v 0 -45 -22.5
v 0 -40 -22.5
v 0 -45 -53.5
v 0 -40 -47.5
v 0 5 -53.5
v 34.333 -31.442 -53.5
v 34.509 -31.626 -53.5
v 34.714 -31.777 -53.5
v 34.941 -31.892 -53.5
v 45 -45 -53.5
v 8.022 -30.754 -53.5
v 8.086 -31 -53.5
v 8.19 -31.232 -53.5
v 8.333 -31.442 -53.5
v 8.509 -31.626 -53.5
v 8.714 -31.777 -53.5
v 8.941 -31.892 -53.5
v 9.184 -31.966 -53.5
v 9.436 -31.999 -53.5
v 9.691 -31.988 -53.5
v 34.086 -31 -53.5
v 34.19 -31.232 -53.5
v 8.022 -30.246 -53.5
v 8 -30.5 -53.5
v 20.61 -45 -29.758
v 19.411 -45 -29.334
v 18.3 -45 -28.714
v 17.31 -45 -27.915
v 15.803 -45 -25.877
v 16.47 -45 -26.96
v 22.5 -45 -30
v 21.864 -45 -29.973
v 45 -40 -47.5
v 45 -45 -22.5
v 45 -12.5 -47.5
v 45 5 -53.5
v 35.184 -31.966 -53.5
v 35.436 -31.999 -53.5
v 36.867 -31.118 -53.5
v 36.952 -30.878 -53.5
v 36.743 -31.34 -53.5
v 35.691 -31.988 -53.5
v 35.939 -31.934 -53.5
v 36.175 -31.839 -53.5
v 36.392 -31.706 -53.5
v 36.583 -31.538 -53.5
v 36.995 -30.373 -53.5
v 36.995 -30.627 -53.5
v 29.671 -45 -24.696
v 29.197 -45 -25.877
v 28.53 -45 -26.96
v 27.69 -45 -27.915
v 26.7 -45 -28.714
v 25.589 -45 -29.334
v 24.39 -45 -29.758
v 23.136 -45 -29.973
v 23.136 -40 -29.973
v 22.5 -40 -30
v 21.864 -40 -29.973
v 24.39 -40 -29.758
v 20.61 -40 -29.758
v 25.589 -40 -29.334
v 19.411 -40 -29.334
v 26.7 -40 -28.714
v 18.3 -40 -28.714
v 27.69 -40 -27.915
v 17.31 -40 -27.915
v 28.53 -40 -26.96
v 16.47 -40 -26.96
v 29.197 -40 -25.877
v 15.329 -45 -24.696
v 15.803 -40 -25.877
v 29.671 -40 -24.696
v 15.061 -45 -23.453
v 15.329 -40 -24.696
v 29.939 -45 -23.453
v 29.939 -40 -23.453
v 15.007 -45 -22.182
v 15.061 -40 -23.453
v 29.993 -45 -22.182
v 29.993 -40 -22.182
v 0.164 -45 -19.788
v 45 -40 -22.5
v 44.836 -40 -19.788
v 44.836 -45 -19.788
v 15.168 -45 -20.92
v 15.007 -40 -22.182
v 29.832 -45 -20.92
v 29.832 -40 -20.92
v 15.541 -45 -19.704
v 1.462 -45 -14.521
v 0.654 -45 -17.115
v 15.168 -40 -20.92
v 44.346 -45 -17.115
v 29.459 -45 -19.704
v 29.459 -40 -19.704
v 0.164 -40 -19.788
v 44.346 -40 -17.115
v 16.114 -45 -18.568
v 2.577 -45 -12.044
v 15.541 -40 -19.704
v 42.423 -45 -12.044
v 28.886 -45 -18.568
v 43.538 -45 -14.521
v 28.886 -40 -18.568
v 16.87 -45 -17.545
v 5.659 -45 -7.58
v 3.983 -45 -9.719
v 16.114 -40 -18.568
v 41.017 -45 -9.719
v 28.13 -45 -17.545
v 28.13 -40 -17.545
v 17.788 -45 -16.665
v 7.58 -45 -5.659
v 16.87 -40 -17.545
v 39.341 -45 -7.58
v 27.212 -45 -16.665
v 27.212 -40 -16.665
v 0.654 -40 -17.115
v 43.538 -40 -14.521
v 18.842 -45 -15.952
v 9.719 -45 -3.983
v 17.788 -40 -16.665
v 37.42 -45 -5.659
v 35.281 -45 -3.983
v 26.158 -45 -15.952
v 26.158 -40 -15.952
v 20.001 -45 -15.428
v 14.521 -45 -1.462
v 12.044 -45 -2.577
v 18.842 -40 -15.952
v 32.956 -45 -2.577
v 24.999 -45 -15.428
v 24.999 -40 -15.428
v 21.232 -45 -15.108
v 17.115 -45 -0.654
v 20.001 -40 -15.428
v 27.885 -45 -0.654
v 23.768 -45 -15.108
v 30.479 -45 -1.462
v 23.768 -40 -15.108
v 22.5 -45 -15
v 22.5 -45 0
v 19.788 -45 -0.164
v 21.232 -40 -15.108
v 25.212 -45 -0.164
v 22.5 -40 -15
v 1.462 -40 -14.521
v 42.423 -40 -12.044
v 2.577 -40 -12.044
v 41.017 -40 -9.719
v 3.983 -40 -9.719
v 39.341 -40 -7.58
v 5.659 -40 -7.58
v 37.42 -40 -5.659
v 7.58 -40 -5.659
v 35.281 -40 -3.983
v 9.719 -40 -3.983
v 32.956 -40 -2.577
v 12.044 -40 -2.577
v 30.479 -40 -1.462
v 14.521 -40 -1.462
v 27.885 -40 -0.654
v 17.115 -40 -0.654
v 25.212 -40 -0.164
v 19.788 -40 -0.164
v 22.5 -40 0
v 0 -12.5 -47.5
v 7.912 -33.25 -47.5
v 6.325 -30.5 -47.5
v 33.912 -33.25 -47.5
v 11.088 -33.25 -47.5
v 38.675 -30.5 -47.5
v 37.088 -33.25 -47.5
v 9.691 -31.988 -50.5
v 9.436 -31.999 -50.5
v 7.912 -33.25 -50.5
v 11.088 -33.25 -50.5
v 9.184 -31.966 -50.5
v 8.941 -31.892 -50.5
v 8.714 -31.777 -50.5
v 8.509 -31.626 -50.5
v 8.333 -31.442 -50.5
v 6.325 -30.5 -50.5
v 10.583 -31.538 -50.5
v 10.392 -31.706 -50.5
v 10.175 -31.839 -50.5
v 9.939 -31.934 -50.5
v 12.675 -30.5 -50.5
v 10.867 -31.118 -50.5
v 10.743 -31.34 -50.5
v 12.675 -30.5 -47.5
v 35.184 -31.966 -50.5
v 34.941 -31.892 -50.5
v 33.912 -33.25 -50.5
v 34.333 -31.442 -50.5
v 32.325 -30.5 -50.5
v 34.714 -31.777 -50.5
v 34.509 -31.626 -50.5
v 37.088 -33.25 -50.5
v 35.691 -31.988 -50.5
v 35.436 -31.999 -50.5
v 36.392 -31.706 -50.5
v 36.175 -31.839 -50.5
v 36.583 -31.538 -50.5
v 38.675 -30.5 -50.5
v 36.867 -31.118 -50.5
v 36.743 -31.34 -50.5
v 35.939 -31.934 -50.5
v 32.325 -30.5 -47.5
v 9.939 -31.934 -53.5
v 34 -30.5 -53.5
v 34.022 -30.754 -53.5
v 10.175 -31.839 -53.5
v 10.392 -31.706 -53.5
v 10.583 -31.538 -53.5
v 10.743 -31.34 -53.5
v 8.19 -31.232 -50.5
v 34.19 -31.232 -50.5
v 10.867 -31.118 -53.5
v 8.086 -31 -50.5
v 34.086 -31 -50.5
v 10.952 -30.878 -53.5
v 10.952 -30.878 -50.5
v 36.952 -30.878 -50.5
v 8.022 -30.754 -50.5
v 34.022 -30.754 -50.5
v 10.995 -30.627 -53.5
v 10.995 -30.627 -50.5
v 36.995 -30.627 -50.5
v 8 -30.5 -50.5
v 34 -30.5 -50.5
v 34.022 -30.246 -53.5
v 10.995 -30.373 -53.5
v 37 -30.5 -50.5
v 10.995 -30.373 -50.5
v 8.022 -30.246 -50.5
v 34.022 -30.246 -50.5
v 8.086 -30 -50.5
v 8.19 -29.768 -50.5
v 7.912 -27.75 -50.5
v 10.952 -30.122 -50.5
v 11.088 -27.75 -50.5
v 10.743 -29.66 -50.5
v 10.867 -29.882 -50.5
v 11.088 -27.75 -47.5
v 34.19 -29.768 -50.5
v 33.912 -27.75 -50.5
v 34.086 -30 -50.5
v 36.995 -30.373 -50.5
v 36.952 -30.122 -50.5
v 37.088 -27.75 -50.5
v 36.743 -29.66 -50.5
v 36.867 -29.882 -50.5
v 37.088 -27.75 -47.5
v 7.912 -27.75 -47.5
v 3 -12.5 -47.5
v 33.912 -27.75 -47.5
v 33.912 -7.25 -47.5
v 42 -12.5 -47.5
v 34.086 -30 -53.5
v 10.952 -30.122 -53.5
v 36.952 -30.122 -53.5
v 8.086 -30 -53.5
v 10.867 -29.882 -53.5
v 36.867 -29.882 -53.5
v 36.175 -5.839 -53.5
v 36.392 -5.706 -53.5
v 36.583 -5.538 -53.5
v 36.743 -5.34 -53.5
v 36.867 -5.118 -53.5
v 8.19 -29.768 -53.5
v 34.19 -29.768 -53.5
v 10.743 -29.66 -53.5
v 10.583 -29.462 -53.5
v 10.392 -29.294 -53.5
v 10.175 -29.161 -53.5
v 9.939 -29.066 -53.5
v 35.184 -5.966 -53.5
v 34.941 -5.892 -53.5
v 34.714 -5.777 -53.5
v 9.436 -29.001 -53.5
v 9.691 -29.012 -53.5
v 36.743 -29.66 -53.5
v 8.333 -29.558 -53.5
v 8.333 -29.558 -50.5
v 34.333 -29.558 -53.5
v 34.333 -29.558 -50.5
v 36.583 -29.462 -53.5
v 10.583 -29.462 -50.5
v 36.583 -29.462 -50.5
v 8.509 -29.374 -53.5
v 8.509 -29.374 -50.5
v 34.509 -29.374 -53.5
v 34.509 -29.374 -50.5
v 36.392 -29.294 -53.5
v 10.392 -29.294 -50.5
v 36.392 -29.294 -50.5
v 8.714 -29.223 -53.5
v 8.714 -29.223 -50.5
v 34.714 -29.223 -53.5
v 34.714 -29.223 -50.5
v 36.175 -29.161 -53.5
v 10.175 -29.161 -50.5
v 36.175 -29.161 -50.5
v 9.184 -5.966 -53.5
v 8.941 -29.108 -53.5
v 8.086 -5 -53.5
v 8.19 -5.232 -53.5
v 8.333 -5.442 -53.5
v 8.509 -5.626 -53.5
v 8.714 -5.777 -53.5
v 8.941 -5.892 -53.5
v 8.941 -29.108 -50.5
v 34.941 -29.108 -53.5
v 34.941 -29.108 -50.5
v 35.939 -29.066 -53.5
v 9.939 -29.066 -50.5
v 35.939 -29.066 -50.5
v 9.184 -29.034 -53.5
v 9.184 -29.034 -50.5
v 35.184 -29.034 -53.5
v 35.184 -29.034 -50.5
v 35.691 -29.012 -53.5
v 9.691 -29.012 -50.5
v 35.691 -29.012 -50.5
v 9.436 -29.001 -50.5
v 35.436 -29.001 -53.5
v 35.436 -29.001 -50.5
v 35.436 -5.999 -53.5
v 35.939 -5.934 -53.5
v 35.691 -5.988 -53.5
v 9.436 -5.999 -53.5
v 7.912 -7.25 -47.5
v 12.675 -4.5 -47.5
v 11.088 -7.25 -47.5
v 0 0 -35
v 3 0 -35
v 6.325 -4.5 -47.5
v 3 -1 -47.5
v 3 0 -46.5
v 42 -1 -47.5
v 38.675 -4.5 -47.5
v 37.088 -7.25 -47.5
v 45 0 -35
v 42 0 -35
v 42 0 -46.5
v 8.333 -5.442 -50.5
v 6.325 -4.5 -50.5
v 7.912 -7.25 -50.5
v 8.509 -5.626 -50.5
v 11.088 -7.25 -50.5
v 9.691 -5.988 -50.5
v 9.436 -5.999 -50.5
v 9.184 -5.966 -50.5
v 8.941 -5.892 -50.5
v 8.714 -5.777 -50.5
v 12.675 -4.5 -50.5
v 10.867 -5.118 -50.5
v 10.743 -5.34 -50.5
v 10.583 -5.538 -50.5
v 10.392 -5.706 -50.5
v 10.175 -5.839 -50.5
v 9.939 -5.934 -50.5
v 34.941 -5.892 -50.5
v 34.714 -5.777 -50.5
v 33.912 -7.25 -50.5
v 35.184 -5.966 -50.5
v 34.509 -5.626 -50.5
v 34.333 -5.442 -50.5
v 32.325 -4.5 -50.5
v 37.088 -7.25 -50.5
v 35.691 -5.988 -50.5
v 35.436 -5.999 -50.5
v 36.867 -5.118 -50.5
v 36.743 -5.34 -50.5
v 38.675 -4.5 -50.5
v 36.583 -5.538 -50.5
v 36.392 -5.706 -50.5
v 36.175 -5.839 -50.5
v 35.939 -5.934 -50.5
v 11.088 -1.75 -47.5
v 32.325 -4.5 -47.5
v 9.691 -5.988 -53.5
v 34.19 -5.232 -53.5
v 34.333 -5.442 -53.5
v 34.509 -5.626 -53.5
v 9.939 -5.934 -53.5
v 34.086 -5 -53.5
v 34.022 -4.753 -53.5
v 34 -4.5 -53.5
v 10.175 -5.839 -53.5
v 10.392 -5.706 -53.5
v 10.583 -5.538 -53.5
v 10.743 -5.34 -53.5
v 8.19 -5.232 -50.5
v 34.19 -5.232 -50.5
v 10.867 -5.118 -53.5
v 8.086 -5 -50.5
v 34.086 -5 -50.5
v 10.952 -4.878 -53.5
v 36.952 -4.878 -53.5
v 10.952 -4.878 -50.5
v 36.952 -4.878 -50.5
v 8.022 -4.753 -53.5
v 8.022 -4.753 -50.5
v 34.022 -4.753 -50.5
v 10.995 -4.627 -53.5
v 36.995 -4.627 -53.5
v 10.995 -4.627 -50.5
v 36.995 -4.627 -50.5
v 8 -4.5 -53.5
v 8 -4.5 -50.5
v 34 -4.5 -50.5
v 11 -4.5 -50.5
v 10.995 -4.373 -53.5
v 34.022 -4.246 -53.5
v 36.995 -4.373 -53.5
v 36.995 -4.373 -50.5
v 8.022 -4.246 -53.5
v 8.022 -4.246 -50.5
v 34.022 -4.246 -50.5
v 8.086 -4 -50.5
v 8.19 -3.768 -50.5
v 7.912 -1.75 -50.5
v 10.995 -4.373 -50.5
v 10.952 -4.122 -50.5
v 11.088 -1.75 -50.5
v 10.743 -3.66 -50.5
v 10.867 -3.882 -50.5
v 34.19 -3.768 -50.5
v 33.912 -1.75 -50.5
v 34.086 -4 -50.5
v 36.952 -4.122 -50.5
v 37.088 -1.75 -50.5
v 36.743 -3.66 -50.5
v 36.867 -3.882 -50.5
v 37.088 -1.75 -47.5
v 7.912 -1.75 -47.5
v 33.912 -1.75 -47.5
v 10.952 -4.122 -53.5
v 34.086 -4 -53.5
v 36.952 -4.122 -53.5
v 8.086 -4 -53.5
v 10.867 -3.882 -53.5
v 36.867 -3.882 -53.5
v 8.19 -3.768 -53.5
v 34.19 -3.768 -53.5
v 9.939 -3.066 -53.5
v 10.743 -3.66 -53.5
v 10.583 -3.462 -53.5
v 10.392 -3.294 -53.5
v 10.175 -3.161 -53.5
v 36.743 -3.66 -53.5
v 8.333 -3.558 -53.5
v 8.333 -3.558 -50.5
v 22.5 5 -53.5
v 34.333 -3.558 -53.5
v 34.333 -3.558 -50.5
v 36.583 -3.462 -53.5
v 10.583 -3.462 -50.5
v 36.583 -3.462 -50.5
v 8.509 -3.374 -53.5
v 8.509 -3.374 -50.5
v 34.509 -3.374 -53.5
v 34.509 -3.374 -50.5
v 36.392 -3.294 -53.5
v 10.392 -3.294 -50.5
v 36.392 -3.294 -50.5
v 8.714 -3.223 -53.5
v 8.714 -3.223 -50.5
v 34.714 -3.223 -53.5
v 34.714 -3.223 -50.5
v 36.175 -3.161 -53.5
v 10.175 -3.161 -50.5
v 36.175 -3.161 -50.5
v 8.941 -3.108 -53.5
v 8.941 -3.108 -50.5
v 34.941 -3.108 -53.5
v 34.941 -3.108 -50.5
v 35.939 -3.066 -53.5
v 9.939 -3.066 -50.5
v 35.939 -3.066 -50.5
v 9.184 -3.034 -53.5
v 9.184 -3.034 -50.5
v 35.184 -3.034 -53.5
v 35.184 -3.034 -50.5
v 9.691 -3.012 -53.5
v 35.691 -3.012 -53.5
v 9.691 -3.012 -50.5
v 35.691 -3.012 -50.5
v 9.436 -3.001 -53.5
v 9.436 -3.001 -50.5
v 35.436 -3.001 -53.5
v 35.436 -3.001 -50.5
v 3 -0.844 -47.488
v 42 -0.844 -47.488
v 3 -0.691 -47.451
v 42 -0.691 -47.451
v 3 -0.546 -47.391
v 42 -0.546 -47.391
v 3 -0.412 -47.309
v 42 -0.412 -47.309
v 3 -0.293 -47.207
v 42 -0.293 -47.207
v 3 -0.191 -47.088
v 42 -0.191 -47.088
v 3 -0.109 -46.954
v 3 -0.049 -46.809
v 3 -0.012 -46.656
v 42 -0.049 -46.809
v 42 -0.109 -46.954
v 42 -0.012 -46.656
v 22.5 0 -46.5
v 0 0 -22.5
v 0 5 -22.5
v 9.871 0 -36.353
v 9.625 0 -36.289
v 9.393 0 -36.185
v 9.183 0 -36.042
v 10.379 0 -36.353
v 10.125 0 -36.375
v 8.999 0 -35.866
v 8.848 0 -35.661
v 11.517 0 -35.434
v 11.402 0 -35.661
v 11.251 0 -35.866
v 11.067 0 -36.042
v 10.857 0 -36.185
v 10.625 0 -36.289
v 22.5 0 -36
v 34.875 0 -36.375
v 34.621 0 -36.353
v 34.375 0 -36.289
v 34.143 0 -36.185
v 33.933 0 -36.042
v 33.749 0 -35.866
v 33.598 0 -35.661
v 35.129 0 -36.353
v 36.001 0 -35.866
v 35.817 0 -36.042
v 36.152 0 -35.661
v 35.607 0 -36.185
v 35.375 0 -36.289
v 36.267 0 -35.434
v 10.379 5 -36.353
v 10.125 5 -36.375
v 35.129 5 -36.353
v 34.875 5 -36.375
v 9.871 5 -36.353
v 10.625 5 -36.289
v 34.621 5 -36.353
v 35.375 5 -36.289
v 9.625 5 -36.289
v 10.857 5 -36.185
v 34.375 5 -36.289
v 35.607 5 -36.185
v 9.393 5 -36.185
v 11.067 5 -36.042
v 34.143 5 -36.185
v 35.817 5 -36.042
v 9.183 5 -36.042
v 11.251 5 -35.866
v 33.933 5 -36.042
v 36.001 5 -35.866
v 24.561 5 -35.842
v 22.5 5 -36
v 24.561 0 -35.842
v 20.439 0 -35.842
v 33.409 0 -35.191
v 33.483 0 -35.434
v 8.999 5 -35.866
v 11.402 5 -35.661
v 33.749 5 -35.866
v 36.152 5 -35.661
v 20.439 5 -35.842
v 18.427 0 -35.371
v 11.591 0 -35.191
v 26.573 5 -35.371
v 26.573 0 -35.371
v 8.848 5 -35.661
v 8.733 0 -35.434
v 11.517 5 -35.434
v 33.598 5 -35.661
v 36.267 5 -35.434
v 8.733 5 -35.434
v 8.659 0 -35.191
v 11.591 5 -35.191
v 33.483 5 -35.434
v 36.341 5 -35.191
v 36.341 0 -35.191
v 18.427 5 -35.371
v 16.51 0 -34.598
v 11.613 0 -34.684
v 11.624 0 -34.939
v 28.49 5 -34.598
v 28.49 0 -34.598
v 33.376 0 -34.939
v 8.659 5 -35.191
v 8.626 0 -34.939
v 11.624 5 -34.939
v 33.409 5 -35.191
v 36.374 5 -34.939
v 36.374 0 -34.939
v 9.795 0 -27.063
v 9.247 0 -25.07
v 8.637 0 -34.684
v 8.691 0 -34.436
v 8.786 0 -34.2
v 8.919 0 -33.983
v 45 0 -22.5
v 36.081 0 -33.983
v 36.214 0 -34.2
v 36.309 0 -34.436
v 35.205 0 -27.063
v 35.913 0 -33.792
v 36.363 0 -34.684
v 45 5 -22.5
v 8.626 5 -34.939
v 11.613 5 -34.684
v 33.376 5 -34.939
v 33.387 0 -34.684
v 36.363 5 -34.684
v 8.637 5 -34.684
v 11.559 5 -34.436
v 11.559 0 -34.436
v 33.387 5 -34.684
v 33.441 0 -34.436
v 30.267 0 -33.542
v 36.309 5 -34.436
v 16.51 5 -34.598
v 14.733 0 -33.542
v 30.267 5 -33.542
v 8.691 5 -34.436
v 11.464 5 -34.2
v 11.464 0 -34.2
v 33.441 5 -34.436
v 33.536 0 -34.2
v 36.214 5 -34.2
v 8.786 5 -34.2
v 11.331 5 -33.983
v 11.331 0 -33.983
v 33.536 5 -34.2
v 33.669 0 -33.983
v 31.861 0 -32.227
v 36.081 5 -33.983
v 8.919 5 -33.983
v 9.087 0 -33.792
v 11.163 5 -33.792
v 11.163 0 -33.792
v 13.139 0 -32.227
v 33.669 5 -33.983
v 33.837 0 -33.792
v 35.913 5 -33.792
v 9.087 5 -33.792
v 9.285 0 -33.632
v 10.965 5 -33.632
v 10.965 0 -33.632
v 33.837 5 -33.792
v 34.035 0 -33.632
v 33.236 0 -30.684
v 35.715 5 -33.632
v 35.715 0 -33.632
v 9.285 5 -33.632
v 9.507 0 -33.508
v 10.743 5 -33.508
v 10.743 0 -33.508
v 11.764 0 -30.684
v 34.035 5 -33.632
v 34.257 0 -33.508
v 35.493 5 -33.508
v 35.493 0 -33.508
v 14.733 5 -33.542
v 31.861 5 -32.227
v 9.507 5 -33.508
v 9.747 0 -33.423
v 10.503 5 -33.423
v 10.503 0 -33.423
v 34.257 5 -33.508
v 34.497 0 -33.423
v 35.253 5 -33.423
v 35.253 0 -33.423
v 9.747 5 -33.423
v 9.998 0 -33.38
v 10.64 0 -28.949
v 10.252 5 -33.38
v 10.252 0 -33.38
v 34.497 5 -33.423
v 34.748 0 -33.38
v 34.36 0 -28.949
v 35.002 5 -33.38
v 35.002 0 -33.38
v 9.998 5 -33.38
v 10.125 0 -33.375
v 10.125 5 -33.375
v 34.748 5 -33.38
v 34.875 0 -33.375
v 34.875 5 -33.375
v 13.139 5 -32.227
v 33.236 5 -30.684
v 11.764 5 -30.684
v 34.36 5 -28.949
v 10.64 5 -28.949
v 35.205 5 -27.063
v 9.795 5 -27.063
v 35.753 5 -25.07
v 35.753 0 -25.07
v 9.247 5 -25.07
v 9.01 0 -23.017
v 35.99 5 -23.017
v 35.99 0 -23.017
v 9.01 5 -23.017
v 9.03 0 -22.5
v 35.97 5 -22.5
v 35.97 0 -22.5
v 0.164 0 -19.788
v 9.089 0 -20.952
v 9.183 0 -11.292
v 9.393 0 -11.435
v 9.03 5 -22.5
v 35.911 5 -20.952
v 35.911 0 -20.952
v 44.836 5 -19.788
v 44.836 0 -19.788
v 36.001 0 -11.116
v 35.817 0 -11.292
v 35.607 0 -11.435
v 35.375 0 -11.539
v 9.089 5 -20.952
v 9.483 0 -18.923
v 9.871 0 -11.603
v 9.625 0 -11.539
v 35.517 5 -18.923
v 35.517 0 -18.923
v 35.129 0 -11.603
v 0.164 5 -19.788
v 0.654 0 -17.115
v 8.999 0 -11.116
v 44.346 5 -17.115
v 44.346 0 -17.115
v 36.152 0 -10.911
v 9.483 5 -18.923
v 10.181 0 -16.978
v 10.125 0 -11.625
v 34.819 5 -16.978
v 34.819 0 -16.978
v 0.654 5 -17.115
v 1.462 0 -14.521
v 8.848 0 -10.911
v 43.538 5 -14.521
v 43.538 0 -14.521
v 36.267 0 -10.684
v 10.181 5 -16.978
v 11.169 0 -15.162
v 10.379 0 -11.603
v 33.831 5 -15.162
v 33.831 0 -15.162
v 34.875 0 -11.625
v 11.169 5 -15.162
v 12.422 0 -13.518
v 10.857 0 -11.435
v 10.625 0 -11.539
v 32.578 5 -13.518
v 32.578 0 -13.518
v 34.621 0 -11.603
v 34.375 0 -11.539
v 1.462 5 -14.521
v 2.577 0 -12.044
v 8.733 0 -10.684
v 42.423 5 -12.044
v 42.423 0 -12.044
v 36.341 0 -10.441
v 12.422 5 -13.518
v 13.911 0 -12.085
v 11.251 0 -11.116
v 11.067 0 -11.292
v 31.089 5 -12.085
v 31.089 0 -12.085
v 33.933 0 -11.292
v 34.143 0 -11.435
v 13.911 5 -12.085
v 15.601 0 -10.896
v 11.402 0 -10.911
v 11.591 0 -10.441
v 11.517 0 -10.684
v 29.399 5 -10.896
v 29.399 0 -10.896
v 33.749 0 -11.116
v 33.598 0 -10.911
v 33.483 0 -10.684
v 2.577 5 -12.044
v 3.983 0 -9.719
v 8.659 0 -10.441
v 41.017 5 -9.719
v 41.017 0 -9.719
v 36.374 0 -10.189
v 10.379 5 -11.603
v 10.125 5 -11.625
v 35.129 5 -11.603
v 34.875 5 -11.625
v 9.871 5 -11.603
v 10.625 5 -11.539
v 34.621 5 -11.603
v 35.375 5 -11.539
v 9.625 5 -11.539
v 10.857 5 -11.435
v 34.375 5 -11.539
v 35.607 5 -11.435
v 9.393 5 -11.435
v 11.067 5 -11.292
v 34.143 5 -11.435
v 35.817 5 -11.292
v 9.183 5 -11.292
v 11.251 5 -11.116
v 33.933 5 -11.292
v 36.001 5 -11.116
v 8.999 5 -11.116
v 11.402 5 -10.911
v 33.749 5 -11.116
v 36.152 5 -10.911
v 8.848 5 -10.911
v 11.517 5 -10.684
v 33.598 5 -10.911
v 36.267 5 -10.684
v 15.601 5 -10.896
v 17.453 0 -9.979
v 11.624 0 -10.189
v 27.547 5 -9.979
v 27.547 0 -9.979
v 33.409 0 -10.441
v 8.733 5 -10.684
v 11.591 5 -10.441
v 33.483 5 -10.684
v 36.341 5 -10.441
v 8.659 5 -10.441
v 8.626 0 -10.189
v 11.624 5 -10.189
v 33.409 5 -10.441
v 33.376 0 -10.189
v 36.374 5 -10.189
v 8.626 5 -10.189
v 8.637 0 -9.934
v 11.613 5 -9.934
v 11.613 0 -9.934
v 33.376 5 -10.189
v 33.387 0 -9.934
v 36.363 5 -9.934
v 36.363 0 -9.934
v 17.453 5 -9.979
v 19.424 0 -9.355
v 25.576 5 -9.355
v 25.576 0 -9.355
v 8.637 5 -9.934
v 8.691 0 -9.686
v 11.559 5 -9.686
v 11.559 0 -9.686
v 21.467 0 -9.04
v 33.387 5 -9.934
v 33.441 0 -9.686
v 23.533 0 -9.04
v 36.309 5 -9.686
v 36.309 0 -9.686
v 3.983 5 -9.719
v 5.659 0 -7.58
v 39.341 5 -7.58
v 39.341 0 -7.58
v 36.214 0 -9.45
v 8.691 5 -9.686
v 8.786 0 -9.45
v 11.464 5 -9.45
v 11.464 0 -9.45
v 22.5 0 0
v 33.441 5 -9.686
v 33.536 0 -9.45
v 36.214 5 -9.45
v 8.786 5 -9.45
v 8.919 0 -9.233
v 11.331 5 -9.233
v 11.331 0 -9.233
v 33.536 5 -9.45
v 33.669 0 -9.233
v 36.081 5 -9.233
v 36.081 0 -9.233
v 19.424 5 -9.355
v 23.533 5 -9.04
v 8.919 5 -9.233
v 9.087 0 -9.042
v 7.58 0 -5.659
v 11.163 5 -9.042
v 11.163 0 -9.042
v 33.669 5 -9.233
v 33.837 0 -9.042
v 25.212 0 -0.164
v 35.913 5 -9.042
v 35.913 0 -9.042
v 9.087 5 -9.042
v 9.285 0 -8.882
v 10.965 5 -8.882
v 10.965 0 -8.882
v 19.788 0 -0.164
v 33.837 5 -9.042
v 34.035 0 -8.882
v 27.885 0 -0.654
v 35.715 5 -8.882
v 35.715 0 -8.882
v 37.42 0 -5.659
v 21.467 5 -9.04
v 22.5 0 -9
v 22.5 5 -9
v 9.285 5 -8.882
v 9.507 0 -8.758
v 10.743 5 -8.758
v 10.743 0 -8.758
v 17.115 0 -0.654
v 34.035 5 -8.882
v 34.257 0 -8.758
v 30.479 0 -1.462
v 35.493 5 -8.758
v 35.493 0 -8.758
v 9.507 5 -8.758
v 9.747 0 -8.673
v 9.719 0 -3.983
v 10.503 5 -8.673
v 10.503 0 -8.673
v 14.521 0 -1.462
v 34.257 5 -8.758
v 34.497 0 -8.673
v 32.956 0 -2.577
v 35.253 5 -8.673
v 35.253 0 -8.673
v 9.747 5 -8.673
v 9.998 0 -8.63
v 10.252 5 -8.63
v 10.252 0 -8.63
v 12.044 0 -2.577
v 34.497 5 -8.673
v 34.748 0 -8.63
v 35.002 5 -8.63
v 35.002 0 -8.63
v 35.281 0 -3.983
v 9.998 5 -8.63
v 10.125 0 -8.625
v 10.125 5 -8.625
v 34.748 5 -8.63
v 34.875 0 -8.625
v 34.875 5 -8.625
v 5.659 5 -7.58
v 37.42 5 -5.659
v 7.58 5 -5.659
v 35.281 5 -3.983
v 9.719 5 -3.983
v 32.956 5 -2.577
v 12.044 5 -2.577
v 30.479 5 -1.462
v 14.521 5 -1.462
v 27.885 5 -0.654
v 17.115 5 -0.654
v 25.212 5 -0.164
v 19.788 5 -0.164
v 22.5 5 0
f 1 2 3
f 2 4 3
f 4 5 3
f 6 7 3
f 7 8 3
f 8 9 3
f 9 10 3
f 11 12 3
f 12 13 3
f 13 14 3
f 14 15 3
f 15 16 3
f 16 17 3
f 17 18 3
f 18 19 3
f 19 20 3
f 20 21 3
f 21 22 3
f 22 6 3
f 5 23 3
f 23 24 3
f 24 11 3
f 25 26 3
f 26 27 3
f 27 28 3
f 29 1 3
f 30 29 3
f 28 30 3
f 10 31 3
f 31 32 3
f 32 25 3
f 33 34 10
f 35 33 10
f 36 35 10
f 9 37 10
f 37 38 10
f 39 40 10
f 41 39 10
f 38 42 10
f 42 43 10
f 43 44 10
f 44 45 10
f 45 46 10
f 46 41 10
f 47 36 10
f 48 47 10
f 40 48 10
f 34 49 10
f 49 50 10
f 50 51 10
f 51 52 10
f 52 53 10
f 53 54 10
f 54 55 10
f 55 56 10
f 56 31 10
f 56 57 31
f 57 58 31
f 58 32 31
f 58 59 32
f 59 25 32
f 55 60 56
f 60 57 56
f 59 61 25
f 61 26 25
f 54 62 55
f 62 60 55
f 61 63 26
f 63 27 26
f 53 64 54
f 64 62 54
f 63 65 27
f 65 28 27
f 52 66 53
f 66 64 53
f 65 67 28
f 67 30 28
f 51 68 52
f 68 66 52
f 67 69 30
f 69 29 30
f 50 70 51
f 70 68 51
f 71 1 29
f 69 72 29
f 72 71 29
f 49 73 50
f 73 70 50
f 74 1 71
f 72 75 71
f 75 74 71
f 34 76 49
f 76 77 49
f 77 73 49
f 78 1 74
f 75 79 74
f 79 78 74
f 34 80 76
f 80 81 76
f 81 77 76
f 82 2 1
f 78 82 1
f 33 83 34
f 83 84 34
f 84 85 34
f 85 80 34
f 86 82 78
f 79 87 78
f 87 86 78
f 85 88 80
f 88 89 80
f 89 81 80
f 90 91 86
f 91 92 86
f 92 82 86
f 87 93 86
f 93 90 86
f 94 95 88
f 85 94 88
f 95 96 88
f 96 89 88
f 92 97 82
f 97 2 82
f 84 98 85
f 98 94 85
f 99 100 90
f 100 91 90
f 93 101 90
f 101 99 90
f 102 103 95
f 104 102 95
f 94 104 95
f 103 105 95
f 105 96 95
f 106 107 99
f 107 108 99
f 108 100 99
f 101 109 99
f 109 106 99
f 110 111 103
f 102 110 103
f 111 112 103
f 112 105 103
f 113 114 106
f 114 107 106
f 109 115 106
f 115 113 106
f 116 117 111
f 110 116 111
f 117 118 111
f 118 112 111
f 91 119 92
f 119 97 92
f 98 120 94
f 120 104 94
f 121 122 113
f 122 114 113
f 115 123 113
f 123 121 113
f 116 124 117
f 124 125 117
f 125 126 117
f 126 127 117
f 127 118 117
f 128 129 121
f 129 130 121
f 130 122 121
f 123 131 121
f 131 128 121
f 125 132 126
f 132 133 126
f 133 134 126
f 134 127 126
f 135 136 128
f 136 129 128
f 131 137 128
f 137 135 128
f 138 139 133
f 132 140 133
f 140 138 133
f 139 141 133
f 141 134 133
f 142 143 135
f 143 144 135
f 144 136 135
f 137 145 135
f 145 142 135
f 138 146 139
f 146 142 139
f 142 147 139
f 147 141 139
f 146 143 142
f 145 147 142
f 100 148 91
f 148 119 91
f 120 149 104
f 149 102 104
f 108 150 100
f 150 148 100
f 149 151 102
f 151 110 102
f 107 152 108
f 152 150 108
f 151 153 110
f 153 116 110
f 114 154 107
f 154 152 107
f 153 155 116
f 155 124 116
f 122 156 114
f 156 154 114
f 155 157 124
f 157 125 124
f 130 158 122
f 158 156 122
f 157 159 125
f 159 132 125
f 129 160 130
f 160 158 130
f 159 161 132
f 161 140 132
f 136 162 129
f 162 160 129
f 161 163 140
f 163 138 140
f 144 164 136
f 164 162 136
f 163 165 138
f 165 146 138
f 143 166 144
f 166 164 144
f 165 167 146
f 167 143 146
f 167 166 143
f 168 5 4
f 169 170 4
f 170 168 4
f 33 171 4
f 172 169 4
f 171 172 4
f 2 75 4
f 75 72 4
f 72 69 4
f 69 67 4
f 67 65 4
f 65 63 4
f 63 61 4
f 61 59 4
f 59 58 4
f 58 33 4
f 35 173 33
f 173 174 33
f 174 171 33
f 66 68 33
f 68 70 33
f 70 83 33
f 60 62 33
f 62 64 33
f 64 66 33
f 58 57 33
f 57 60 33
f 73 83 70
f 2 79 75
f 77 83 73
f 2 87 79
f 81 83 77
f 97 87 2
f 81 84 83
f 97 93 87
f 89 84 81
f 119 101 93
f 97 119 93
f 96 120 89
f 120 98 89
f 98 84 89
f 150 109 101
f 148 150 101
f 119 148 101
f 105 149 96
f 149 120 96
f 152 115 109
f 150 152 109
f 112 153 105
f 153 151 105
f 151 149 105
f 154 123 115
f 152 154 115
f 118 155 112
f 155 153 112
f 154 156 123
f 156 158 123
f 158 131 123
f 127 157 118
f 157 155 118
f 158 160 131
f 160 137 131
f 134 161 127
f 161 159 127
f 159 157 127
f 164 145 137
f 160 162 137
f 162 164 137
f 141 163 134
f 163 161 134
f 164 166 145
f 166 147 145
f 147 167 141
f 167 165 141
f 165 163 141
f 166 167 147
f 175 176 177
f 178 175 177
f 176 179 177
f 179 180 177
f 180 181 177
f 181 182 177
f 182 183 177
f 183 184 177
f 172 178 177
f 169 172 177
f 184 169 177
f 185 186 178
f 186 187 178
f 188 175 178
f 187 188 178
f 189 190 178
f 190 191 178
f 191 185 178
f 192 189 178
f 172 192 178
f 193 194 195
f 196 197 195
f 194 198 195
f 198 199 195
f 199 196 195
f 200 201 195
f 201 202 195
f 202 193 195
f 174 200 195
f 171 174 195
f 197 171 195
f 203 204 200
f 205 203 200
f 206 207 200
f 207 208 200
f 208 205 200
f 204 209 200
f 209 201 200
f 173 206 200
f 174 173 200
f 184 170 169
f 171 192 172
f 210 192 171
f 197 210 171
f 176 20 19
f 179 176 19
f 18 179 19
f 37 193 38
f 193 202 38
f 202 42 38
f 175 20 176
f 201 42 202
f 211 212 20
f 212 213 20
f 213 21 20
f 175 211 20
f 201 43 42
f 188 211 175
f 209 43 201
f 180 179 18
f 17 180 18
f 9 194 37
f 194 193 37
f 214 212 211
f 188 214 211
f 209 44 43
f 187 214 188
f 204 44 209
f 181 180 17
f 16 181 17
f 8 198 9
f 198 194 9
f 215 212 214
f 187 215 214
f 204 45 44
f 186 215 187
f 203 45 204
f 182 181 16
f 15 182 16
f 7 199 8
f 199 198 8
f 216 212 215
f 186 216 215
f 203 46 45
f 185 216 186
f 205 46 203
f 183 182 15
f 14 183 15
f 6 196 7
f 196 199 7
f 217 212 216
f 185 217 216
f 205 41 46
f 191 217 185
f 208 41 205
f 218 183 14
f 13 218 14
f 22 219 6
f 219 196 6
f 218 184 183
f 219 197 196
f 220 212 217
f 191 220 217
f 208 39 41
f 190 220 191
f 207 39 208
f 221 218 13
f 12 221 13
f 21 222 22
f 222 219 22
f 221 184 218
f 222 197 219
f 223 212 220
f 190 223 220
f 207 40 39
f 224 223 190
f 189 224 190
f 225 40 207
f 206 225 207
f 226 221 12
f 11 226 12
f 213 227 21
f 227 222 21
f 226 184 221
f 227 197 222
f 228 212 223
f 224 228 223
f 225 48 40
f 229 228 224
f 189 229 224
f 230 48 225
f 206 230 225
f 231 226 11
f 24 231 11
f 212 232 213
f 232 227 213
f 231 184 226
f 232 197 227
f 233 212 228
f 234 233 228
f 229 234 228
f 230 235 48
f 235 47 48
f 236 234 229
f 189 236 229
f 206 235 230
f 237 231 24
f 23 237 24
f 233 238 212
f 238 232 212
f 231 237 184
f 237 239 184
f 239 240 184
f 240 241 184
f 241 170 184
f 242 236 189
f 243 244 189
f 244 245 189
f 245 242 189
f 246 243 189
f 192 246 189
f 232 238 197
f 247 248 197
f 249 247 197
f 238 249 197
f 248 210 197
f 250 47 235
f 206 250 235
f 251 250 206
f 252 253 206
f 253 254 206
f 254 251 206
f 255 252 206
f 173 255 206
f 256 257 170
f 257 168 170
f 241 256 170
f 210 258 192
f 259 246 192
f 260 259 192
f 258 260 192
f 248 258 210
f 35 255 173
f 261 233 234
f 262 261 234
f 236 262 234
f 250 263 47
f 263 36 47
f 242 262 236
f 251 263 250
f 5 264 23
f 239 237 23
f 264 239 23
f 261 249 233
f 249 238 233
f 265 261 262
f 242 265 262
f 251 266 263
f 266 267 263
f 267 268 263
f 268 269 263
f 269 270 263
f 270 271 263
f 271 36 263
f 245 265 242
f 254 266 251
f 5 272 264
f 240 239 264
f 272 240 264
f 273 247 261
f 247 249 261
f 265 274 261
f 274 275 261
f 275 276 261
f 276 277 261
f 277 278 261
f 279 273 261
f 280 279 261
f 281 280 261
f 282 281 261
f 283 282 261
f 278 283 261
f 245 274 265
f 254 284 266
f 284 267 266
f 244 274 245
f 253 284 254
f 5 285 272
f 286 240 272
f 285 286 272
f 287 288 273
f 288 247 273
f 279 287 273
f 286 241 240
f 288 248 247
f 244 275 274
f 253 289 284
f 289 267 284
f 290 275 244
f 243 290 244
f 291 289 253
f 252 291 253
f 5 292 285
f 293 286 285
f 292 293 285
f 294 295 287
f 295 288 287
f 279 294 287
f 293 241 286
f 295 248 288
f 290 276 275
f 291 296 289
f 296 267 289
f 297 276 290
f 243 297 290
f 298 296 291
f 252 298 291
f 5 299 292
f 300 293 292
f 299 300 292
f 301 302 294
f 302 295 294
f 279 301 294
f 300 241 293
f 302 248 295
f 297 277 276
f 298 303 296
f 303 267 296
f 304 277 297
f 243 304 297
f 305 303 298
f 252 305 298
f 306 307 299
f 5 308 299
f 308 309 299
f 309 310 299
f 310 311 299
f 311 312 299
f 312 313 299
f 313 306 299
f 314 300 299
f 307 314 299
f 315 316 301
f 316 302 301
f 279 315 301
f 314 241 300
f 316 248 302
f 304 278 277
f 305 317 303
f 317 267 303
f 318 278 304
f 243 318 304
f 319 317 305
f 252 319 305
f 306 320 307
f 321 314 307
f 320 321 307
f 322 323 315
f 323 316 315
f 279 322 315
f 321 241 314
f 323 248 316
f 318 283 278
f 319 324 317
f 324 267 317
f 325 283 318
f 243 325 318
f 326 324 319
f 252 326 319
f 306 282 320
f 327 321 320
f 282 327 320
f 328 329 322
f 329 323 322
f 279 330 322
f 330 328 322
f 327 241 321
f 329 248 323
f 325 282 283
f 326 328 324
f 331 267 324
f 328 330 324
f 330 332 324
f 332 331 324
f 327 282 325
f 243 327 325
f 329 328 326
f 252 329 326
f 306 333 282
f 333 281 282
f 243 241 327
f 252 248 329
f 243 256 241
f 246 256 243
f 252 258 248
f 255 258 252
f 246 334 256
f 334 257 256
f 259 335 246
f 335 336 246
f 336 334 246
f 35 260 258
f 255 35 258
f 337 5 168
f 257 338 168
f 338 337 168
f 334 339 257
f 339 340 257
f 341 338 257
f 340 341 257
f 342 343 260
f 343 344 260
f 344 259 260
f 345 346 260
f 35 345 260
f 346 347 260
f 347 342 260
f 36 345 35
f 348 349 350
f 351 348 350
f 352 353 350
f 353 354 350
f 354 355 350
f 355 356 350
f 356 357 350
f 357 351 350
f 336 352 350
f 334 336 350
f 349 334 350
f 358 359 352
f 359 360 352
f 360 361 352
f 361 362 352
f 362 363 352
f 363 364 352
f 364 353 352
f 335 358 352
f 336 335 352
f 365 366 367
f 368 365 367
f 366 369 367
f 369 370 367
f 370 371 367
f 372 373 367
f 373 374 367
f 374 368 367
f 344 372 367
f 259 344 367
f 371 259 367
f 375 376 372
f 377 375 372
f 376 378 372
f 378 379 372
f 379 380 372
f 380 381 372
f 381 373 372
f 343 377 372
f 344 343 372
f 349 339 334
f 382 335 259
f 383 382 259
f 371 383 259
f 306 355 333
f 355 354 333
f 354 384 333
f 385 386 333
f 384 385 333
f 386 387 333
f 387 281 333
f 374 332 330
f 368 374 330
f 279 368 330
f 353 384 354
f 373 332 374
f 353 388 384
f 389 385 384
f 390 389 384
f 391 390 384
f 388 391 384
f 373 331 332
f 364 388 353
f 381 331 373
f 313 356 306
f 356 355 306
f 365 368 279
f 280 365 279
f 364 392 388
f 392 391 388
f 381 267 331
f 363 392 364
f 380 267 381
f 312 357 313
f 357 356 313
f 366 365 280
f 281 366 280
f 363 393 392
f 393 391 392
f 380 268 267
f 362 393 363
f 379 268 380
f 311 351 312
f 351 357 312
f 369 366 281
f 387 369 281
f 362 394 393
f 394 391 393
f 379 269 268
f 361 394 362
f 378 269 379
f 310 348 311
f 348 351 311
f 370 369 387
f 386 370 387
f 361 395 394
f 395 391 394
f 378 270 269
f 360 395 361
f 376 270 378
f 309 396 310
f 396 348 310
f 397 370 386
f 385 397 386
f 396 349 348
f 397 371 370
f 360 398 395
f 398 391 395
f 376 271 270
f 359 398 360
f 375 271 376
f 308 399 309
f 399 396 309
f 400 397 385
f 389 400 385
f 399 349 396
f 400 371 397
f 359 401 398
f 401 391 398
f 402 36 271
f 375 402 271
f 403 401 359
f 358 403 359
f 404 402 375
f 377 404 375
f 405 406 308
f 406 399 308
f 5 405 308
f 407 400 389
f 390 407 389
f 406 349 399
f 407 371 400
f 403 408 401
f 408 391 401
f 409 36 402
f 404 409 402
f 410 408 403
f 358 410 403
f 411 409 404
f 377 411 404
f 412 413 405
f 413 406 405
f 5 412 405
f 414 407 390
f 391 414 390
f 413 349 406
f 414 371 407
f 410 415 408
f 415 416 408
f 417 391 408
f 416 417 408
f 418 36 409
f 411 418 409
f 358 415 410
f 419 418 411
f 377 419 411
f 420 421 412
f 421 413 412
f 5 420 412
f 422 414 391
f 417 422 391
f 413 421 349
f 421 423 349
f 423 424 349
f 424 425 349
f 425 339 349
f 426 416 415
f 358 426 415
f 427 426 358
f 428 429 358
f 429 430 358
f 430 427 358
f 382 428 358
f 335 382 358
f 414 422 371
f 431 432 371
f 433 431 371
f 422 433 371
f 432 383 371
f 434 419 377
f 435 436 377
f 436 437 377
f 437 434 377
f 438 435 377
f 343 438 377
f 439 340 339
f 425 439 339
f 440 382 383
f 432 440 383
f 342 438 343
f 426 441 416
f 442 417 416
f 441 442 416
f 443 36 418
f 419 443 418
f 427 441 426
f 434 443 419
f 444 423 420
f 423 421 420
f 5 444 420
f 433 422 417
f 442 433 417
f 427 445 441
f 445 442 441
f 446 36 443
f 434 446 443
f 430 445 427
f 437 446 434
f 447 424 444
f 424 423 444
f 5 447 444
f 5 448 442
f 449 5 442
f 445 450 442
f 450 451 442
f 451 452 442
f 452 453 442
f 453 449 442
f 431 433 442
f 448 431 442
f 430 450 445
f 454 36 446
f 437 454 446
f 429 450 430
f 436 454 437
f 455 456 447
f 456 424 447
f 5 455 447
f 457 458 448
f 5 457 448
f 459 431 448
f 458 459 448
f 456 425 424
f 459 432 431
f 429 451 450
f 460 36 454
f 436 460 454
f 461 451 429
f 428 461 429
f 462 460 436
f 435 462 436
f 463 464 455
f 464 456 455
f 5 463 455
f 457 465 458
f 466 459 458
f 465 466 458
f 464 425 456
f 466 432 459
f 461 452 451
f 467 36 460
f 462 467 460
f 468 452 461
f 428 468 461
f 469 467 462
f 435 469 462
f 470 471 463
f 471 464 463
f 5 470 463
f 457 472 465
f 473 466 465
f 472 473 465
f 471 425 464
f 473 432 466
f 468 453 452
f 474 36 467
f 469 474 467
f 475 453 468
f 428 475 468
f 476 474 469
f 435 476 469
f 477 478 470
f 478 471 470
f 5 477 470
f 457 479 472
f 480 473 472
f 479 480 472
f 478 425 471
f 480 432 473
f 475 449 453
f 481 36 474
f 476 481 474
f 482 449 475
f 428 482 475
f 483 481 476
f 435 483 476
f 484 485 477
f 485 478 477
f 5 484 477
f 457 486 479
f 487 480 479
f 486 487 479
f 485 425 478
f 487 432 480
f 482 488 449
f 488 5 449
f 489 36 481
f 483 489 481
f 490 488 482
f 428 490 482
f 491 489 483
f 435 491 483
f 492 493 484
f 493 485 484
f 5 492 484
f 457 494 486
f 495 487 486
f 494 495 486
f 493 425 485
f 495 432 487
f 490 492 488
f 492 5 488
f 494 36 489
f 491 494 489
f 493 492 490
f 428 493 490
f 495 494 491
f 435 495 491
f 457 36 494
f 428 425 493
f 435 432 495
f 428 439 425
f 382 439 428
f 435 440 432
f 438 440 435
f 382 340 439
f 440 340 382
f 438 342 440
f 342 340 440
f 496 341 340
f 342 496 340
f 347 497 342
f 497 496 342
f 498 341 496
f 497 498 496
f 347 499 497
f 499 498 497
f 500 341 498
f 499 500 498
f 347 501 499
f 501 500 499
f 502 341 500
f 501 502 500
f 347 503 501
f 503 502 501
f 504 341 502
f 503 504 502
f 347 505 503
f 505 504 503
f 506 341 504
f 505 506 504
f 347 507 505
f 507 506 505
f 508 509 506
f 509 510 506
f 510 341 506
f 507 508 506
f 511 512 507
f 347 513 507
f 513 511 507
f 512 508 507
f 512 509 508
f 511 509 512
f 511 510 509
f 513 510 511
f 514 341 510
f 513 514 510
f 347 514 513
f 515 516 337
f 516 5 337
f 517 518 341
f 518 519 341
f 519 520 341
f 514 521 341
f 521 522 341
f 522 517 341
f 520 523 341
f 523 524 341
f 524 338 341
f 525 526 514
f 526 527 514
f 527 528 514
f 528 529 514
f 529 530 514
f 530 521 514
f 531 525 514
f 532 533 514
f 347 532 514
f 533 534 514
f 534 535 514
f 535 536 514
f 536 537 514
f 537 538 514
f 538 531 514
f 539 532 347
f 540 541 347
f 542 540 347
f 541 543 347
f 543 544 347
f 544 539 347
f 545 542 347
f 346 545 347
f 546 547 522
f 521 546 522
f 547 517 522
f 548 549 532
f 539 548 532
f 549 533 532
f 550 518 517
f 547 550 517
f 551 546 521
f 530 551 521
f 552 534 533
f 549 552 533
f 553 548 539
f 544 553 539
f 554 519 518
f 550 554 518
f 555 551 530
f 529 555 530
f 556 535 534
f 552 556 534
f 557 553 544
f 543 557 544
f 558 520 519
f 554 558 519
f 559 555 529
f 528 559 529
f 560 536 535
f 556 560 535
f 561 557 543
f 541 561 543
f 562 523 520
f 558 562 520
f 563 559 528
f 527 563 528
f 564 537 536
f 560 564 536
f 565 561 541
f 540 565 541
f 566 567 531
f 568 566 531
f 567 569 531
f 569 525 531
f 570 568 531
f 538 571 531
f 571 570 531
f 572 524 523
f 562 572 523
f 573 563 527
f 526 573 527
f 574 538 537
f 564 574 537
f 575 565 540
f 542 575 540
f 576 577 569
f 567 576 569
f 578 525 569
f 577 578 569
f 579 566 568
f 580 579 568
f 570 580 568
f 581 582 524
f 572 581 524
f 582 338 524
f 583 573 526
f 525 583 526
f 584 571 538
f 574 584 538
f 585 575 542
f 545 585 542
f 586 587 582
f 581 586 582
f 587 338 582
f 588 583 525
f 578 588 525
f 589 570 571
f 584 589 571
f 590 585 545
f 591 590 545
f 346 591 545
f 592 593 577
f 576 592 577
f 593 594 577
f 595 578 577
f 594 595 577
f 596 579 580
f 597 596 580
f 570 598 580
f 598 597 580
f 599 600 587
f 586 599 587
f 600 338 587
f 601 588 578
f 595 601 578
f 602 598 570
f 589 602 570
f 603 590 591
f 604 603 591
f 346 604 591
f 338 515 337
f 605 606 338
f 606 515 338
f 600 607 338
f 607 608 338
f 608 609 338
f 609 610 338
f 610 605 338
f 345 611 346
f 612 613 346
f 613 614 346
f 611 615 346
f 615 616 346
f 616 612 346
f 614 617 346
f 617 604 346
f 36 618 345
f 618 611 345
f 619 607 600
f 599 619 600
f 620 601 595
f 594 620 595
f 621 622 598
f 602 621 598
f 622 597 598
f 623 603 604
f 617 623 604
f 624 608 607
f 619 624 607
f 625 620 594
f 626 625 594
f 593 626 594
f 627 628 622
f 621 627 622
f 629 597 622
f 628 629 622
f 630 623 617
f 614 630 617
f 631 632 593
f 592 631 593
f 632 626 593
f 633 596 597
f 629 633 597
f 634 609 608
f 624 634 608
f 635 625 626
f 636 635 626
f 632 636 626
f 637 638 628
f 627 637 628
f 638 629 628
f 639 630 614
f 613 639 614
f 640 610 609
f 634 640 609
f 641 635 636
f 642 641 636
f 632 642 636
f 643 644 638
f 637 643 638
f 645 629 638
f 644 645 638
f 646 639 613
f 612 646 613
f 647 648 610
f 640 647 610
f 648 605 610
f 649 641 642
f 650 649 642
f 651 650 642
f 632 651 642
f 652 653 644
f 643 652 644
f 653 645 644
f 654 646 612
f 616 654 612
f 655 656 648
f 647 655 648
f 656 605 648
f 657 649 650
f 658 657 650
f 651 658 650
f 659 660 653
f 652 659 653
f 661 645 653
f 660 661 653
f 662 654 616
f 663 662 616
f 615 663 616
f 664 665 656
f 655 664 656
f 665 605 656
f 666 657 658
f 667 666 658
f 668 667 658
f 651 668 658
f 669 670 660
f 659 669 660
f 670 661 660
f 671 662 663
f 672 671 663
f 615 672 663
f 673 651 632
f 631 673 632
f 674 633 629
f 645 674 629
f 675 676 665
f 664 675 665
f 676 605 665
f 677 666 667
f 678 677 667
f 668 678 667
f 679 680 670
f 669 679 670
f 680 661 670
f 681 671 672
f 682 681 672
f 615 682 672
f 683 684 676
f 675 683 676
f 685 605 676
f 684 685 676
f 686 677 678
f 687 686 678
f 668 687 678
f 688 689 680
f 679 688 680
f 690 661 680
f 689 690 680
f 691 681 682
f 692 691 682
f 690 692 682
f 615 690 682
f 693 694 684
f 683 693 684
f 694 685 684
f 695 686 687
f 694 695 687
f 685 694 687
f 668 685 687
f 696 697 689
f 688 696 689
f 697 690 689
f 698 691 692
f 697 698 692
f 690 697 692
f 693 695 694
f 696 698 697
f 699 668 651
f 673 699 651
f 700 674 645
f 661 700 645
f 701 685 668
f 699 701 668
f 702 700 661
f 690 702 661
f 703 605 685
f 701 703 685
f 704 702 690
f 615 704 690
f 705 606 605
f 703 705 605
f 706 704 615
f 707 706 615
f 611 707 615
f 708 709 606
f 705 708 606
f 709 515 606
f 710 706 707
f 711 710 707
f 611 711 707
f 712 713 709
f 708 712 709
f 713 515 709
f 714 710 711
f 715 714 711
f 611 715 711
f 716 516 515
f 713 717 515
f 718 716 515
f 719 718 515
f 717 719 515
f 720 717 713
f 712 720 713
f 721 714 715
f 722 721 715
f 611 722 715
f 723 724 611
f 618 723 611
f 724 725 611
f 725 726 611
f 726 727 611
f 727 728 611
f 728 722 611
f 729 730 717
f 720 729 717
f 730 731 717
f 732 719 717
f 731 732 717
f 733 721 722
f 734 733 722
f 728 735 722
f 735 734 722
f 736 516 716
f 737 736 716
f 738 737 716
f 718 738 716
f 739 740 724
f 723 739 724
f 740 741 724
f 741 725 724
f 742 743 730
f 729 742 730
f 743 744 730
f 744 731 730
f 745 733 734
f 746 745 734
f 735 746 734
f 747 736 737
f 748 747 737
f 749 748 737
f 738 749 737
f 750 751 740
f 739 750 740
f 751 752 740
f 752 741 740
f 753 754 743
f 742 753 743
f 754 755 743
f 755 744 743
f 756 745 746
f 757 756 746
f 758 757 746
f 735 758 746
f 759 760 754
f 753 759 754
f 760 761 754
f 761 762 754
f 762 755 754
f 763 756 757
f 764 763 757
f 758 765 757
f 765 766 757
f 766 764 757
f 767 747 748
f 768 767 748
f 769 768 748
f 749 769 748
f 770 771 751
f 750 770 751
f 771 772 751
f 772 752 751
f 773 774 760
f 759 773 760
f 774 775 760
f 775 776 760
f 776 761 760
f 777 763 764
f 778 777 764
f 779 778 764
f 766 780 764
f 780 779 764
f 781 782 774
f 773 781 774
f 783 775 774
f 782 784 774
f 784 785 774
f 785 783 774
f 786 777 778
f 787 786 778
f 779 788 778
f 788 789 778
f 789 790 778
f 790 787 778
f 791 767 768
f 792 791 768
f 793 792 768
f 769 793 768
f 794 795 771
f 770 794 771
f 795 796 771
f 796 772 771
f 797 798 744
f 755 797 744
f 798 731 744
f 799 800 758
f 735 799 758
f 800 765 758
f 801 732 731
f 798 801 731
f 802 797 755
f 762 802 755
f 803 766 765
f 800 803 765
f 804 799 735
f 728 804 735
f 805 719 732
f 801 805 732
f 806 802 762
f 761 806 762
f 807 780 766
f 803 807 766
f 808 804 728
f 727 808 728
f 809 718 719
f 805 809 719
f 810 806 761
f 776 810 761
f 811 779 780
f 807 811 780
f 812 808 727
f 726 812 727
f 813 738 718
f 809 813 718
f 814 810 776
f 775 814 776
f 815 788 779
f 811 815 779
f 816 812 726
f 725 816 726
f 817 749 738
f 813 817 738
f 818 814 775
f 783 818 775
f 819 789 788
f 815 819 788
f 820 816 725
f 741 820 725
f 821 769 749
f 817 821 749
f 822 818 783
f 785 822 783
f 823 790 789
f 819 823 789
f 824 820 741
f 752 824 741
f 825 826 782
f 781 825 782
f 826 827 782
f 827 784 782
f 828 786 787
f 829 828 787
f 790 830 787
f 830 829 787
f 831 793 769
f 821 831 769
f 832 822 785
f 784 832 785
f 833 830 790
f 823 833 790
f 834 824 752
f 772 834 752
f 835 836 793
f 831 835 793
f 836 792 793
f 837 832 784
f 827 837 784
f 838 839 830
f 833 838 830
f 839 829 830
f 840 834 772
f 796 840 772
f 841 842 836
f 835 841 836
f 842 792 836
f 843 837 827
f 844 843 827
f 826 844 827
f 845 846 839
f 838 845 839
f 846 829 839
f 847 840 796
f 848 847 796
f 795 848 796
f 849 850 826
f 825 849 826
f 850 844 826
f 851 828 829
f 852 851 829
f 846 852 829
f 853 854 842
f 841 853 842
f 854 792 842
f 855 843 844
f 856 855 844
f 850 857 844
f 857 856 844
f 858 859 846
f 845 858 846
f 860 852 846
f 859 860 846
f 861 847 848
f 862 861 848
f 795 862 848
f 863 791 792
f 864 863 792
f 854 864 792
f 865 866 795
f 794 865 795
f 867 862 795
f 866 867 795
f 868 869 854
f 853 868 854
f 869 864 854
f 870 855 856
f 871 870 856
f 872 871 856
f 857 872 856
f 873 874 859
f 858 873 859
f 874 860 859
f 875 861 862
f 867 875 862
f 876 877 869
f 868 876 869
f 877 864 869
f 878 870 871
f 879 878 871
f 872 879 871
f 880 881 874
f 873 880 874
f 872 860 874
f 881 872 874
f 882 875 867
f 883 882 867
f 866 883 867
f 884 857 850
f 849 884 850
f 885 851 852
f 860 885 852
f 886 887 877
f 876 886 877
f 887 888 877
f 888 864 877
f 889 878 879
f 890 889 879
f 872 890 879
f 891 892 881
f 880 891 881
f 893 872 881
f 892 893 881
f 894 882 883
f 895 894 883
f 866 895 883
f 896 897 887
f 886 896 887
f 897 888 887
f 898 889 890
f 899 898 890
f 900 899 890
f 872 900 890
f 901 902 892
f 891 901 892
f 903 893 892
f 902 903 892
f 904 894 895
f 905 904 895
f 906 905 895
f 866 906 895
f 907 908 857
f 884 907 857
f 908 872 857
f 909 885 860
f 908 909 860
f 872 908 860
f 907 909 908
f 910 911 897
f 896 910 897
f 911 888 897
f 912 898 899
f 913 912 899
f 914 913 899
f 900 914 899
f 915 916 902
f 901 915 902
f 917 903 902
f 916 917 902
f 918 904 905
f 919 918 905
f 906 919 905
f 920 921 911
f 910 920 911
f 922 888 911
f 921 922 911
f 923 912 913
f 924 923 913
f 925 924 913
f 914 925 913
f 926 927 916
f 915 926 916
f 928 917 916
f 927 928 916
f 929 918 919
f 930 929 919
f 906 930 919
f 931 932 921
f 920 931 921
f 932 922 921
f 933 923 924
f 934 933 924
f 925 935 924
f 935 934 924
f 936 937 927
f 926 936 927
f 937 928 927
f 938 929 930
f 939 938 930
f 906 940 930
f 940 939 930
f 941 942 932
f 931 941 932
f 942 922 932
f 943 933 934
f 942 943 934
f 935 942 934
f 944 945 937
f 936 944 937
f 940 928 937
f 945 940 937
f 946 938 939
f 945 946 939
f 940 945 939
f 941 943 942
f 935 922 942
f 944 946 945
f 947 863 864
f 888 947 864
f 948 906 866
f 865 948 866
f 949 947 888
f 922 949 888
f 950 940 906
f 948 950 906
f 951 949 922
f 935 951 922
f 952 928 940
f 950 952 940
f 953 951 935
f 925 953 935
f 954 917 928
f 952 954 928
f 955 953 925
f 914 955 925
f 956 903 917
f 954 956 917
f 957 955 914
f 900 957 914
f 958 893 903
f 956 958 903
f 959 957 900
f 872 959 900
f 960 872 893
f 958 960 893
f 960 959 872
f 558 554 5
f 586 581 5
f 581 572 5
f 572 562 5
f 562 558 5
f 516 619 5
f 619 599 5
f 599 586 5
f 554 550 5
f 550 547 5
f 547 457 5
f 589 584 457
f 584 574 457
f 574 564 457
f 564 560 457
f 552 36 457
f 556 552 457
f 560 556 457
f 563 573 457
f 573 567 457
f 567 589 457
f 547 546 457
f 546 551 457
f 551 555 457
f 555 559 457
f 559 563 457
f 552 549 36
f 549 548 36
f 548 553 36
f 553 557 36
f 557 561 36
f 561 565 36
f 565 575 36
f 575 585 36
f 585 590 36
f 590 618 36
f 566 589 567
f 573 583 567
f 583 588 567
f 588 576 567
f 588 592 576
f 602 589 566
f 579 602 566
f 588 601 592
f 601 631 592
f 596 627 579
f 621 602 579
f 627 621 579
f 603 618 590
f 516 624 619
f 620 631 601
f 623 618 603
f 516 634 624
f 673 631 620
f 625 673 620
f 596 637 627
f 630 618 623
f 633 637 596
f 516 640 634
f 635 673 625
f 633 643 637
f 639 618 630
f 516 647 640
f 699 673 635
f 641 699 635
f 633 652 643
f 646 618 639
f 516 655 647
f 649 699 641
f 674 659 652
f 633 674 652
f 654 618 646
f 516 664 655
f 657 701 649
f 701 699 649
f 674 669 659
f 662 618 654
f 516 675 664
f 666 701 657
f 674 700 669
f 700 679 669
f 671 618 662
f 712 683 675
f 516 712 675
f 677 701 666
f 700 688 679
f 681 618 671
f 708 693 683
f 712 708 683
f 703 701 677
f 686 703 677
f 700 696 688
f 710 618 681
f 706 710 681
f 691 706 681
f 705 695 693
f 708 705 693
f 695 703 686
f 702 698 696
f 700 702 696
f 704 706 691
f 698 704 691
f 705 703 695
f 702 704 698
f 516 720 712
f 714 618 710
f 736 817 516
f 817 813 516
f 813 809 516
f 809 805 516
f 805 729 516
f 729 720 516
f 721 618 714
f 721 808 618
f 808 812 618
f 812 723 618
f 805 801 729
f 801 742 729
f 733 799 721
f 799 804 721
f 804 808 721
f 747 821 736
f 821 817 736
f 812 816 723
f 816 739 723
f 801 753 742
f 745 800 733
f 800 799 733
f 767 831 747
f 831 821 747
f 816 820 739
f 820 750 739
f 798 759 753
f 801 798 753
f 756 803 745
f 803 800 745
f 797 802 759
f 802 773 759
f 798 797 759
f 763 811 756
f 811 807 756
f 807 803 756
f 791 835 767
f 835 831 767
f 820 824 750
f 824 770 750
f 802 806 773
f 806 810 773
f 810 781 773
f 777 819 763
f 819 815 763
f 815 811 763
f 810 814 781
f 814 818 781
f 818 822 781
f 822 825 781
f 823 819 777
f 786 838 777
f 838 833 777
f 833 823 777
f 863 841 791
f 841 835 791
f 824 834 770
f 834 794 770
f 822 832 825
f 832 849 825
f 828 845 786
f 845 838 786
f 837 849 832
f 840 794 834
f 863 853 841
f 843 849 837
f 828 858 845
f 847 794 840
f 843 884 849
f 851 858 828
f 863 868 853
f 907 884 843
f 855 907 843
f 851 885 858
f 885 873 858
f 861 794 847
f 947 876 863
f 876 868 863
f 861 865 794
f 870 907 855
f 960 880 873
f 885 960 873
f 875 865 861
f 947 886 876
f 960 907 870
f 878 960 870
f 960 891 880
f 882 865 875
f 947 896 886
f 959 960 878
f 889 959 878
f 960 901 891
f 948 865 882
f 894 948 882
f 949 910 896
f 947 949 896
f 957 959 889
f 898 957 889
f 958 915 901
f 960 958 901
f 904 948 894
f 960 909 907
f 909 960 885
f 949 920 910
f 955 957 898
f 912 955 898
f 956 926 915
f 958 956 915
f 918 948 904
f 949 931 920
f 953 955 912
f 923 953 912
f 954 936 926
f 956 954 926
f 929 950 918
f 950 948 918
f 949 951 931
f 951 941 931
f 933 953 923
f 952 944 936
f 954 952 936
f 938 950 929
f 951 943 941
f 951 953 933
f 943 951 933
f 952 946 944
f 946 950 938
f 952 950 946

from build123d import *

# Parameters (mm, degrees)
SKETCH_1_R          = 1.5
SKETCH_1_R_2        = 13.5
EXTRUDE_1_DEPTH     = 5
SKETCH_2_W          = 45
SKETCH_2_H          = 6
EXTRUDE_2_DEPTH     = 45
CUT_EXTRUDE_1_REACH = 82.543
SKETCH_4_R          = 1.5
EXTRUDE_3_DEPTH     = 3
EXTRUDE_4_DEPTH     = 3
FILLET_1_R          = 1
CUT_EXTRUDE_2_DEPTH = 3
EXTRUDE_START       = 5
EXTRUDE_5_DEPTH     = 5
CUT_EXTRUDE_3_REACH = 85.14
SKETCH_9_R          = 7.5


with BuildPart() as part:
    # 草图1 → 凸台-拉伸1 (new body)
    with BuildSketch(Plane(origin=(0, 0, 0), x_dir=(1, 0, 0), z_dir=(0, 1, 0))):
        with BuildLine():
            ThreePointArc((0, 22.5), (6.590097423, 6.590097423), (22.5, 0))
            ThreePointArc((22.5, 0), (38.409902577, 6.590097423), (45, 22.5))
            Line((45, 22.5), (45, 47.5))
            Line((45, 47.5), (0, 47.5))
            Line((0, 47.5), (0, 22.5))
        make_face()
        with Locations(Location((10.125, 10.125, 0), (0, 0, 270))):
            Circle(SKETCH_1_R, mode=Mode.SUBTRACT)
        with Locations(Location((34.875, 10.125, 0), (0, 0, 270))):
            Circle(SKETCH_1_R, mode=Mode.SUBTRACT)
        with Locations(Location((22.5, 22.5, 0), (0, 0, 270))):
            Circle(SKETCH_1_R_2, mode=Mode.SUBTRACT)
        with Locations(Location((10.125, 34.875, 0), (0, 0, 270))):
            Circle(SKETCH_1_R, mode=Mode.SUBTRACT)
        with Locations(Location((34.875, 34.875, 0), (0, 0, 270))):
            Circle(SKETCH_1_R, mode=Mode.SUBTRACT)
    extrude(amount=EXTRUDE_1_DEPTH)

    # 草图2 → 凸台-拉伸2 (add)
    with BuildSketch(Plane(origin=(0, 5, 0), x_dir=(1, 0, 0), z_dir=(0, 1, 0))):
        with Locations((22.5, 50.5)):
            Rectangle(SKETCH_2_W, SKETCH_2_H)
    extrude(amount=-EXTRUDE_2_DEPTH)

    # 草图4 → 切除-拉伸1 (cut, up to next)
    with BuildSketch(Plane(origin=(0, 0, -53.5), x_dir=(-1, 0, 0), z_dir=(0, 0, -1)), mode=Mode.PRIVATE) as cut_extrude_1_sk1:
        with Locations((-9.5, -4.5)):
            Circle(SKETCH_4_R)
    cut_extrude_1_tool1 = extrude(cut_extrude_1_sk1.sketch, amount=-CUT_EXTRUDE_1_REACH, mode=Mode.PRIVATE) & part.part
    # 草图4 → 切除-拉伸1 (cut, up to next)
    with BuildSketch(Plane(origin=(0, 0, -53.5), x_dir=(-1, 0, 0), z_dir=(0, 0, -1)), mode=Mode.PRIVATE) as cut_extrude_1_sk2:
        with Locations((-9.5, -30.5)):
            Circle(SKETCH_4_R)
    cut_extrude_1_tool2 = extrude(cut_extrude_1_sk2.sketch, amount=-CUT_EXTRUDE_1_REACH, mode=Mode.PRIVATE) & part.part
    # 草图4 → 切除-拉伸1 (cut, up to next)
    with BuildSketch(Plane(origin=(0, 0, -53.5), x_dir=(-1, 0, 0), z_dir=(0, 0, -1)), mode=Mode.PRIVATE) as cut_extrude_1_sk3:
        with Locations((-35.5, -30.5)):
            Circle(SKETCH_4_R)
    cut_extrude_1_tool3 = extrude(cut_extrude_1_sk3.sketch, amount=-CUT_EXTRUDE_1_REACH, mode=Mode.PRIVATE) & part.part
    # 草图4 → 切除-拉伸1 (cut, up to next)
    with BuildSketch(Plane(origin=(0, 0, -53.5), x_dir=(-1, 0, 0), z_dir=(0, 0, -1)), mode=Mode.PRIVATE) as cut_extrude_1_sk4:
        with Locations((-35.5, -4.5)):
            Circle(SKETCH_4_R)
    cut_extrude_1_tool4 = extrude(cut_extrude_1_sk4.sketch, amount=-CUT_EXTRUDE_1_REACH, mode=Mode.PRIVATE) & part.part
    add(cut_extrude_1_tool1.solids().sort_by_distance((9.5, -4.5, -53.5))[0], mode=Mode.SUBTRACT)
    add(cut_extrude_1_tool2.solids().sort_by_distance((9.5, -30.5, -53.5))[0], mode=Mode.SUBTRACT)
    add(cut_extrude_1_tool3.solids().sort_by_distance((35.5, -30.5, -53.5))[0], mode=Mode.SUBTRACT)
    add(cut_extrude_1_tool4.solids().sort_by_distance((35.5, -4.5, -53.5))[0], mode=Mode.SUBTRACT)

    # 草图5 → 凸台-拉伸3 (add)
    with BuildSketch(Plane.ZY):
        Polygon((-47.5, 0), (-35, 0), (-47.5, -12.5), align=None)
    extrude(amount=-EXTRUDE_3_DEPTH)

    # 草图6 → 凸台-拉伸4 (add)
    with BuildSketch(Plane(origin=(45, 0, 0), x_dir=(0, 0, -1), z_dir=(1, 0, 0))):
        Polygon((35, 0), (47.5, 0), (47.5, -12.5), align=None)
    extrude(amount=-EXTRUDE_4_DEPTH)

    # 圆角1
    fillet_1_edges = [part.edges().sort_by_distance(p)[0] for p in [
        (22.5, 0, -47.5),
    ]]
    fillet(fillet_1_edges, radius=FILLET_1_R)

    # 草图7 → 切除-拉伸2 (cut)
    with BuildSketch(Plane.XY.offset(-47.5)):
        Polygon((11.08771324, -33.25), (7.91228676, -33.25), (6.324573519, -30.5), (7.91228676, -27.75), (11.08771324, -27.75), (12.675426481, -30.5), align=None)
        Polygon((37.08771324, -33.25), (38.675426481, -30.5), (37.08771324, -27.75), (33.91228676, -27.75), (32.324573519, -30.5), (33.91228676, -33.25), align=None)
        Polygon((33.91228676, -1.75), (37.08771324, -1.75), (38.675426481, -4.5), (37.08771324, -7.25), (33.91228676, -7.25), (32.324573519, -4.5), align=None)
        Polygon((7.91228676, -1.75), (6.324573519, -4.5), (7.91228676, -7.25), (11.08771324, -7.25), (12.675426481, -4.5), (11.08771324, -1.75), align=None)
    extrude(amount=-CUT_EXTRUDE_2_DEPTH, mode=Mode.SUBTRACT)

    # 草图8 → 凸台-拉伸5 (add)
    with BuildSketch(Plane(origin=(0, -40, 0), x_dir=(-1, 0, 0), z_dir=(0, -1, 0)).offset(EXTRUDE_START)):
        with BuildLine():
            Line((-45, 53.5), (-45, 22.5))
            ThreePointArc((-45, 22.5), (-22.5, 0), (0, 22.5))
            Line((0, 22.5), (0, 53.5))
            Line((0, 53.5), (-45, 53.5))
        make_face()
    extrude(amount=-EXTRUDE_5_DEPTH)

    # 草图9 → 切除-拉伸3 (cut, up to next)
    with BuildSketch(Plane(origin=(0, -40, 0), x_dir=(-1, 0, 0), z_dir=(0, -1, 0)), mode=Mode.PRIVATE) as cut_extrude_3_sk1:
        with Locations(Location((-22.5, 22.5, 0), (0, 0, 90))):
            Circle(SKETCH_9_R)
    cut_extrude_3_tool1 = extrude(cut_extrude_3_sk1.sketch, amount=CUT_EXTRUDE_3_REACH, mode=Mode.PRIVATE) & part.part
    add(cut_extrude_3_tool1.solids().sort_by_distance((22.5, -40, -22.5))[0], mode=Mode.SUBTRACT)


solid = part.part
